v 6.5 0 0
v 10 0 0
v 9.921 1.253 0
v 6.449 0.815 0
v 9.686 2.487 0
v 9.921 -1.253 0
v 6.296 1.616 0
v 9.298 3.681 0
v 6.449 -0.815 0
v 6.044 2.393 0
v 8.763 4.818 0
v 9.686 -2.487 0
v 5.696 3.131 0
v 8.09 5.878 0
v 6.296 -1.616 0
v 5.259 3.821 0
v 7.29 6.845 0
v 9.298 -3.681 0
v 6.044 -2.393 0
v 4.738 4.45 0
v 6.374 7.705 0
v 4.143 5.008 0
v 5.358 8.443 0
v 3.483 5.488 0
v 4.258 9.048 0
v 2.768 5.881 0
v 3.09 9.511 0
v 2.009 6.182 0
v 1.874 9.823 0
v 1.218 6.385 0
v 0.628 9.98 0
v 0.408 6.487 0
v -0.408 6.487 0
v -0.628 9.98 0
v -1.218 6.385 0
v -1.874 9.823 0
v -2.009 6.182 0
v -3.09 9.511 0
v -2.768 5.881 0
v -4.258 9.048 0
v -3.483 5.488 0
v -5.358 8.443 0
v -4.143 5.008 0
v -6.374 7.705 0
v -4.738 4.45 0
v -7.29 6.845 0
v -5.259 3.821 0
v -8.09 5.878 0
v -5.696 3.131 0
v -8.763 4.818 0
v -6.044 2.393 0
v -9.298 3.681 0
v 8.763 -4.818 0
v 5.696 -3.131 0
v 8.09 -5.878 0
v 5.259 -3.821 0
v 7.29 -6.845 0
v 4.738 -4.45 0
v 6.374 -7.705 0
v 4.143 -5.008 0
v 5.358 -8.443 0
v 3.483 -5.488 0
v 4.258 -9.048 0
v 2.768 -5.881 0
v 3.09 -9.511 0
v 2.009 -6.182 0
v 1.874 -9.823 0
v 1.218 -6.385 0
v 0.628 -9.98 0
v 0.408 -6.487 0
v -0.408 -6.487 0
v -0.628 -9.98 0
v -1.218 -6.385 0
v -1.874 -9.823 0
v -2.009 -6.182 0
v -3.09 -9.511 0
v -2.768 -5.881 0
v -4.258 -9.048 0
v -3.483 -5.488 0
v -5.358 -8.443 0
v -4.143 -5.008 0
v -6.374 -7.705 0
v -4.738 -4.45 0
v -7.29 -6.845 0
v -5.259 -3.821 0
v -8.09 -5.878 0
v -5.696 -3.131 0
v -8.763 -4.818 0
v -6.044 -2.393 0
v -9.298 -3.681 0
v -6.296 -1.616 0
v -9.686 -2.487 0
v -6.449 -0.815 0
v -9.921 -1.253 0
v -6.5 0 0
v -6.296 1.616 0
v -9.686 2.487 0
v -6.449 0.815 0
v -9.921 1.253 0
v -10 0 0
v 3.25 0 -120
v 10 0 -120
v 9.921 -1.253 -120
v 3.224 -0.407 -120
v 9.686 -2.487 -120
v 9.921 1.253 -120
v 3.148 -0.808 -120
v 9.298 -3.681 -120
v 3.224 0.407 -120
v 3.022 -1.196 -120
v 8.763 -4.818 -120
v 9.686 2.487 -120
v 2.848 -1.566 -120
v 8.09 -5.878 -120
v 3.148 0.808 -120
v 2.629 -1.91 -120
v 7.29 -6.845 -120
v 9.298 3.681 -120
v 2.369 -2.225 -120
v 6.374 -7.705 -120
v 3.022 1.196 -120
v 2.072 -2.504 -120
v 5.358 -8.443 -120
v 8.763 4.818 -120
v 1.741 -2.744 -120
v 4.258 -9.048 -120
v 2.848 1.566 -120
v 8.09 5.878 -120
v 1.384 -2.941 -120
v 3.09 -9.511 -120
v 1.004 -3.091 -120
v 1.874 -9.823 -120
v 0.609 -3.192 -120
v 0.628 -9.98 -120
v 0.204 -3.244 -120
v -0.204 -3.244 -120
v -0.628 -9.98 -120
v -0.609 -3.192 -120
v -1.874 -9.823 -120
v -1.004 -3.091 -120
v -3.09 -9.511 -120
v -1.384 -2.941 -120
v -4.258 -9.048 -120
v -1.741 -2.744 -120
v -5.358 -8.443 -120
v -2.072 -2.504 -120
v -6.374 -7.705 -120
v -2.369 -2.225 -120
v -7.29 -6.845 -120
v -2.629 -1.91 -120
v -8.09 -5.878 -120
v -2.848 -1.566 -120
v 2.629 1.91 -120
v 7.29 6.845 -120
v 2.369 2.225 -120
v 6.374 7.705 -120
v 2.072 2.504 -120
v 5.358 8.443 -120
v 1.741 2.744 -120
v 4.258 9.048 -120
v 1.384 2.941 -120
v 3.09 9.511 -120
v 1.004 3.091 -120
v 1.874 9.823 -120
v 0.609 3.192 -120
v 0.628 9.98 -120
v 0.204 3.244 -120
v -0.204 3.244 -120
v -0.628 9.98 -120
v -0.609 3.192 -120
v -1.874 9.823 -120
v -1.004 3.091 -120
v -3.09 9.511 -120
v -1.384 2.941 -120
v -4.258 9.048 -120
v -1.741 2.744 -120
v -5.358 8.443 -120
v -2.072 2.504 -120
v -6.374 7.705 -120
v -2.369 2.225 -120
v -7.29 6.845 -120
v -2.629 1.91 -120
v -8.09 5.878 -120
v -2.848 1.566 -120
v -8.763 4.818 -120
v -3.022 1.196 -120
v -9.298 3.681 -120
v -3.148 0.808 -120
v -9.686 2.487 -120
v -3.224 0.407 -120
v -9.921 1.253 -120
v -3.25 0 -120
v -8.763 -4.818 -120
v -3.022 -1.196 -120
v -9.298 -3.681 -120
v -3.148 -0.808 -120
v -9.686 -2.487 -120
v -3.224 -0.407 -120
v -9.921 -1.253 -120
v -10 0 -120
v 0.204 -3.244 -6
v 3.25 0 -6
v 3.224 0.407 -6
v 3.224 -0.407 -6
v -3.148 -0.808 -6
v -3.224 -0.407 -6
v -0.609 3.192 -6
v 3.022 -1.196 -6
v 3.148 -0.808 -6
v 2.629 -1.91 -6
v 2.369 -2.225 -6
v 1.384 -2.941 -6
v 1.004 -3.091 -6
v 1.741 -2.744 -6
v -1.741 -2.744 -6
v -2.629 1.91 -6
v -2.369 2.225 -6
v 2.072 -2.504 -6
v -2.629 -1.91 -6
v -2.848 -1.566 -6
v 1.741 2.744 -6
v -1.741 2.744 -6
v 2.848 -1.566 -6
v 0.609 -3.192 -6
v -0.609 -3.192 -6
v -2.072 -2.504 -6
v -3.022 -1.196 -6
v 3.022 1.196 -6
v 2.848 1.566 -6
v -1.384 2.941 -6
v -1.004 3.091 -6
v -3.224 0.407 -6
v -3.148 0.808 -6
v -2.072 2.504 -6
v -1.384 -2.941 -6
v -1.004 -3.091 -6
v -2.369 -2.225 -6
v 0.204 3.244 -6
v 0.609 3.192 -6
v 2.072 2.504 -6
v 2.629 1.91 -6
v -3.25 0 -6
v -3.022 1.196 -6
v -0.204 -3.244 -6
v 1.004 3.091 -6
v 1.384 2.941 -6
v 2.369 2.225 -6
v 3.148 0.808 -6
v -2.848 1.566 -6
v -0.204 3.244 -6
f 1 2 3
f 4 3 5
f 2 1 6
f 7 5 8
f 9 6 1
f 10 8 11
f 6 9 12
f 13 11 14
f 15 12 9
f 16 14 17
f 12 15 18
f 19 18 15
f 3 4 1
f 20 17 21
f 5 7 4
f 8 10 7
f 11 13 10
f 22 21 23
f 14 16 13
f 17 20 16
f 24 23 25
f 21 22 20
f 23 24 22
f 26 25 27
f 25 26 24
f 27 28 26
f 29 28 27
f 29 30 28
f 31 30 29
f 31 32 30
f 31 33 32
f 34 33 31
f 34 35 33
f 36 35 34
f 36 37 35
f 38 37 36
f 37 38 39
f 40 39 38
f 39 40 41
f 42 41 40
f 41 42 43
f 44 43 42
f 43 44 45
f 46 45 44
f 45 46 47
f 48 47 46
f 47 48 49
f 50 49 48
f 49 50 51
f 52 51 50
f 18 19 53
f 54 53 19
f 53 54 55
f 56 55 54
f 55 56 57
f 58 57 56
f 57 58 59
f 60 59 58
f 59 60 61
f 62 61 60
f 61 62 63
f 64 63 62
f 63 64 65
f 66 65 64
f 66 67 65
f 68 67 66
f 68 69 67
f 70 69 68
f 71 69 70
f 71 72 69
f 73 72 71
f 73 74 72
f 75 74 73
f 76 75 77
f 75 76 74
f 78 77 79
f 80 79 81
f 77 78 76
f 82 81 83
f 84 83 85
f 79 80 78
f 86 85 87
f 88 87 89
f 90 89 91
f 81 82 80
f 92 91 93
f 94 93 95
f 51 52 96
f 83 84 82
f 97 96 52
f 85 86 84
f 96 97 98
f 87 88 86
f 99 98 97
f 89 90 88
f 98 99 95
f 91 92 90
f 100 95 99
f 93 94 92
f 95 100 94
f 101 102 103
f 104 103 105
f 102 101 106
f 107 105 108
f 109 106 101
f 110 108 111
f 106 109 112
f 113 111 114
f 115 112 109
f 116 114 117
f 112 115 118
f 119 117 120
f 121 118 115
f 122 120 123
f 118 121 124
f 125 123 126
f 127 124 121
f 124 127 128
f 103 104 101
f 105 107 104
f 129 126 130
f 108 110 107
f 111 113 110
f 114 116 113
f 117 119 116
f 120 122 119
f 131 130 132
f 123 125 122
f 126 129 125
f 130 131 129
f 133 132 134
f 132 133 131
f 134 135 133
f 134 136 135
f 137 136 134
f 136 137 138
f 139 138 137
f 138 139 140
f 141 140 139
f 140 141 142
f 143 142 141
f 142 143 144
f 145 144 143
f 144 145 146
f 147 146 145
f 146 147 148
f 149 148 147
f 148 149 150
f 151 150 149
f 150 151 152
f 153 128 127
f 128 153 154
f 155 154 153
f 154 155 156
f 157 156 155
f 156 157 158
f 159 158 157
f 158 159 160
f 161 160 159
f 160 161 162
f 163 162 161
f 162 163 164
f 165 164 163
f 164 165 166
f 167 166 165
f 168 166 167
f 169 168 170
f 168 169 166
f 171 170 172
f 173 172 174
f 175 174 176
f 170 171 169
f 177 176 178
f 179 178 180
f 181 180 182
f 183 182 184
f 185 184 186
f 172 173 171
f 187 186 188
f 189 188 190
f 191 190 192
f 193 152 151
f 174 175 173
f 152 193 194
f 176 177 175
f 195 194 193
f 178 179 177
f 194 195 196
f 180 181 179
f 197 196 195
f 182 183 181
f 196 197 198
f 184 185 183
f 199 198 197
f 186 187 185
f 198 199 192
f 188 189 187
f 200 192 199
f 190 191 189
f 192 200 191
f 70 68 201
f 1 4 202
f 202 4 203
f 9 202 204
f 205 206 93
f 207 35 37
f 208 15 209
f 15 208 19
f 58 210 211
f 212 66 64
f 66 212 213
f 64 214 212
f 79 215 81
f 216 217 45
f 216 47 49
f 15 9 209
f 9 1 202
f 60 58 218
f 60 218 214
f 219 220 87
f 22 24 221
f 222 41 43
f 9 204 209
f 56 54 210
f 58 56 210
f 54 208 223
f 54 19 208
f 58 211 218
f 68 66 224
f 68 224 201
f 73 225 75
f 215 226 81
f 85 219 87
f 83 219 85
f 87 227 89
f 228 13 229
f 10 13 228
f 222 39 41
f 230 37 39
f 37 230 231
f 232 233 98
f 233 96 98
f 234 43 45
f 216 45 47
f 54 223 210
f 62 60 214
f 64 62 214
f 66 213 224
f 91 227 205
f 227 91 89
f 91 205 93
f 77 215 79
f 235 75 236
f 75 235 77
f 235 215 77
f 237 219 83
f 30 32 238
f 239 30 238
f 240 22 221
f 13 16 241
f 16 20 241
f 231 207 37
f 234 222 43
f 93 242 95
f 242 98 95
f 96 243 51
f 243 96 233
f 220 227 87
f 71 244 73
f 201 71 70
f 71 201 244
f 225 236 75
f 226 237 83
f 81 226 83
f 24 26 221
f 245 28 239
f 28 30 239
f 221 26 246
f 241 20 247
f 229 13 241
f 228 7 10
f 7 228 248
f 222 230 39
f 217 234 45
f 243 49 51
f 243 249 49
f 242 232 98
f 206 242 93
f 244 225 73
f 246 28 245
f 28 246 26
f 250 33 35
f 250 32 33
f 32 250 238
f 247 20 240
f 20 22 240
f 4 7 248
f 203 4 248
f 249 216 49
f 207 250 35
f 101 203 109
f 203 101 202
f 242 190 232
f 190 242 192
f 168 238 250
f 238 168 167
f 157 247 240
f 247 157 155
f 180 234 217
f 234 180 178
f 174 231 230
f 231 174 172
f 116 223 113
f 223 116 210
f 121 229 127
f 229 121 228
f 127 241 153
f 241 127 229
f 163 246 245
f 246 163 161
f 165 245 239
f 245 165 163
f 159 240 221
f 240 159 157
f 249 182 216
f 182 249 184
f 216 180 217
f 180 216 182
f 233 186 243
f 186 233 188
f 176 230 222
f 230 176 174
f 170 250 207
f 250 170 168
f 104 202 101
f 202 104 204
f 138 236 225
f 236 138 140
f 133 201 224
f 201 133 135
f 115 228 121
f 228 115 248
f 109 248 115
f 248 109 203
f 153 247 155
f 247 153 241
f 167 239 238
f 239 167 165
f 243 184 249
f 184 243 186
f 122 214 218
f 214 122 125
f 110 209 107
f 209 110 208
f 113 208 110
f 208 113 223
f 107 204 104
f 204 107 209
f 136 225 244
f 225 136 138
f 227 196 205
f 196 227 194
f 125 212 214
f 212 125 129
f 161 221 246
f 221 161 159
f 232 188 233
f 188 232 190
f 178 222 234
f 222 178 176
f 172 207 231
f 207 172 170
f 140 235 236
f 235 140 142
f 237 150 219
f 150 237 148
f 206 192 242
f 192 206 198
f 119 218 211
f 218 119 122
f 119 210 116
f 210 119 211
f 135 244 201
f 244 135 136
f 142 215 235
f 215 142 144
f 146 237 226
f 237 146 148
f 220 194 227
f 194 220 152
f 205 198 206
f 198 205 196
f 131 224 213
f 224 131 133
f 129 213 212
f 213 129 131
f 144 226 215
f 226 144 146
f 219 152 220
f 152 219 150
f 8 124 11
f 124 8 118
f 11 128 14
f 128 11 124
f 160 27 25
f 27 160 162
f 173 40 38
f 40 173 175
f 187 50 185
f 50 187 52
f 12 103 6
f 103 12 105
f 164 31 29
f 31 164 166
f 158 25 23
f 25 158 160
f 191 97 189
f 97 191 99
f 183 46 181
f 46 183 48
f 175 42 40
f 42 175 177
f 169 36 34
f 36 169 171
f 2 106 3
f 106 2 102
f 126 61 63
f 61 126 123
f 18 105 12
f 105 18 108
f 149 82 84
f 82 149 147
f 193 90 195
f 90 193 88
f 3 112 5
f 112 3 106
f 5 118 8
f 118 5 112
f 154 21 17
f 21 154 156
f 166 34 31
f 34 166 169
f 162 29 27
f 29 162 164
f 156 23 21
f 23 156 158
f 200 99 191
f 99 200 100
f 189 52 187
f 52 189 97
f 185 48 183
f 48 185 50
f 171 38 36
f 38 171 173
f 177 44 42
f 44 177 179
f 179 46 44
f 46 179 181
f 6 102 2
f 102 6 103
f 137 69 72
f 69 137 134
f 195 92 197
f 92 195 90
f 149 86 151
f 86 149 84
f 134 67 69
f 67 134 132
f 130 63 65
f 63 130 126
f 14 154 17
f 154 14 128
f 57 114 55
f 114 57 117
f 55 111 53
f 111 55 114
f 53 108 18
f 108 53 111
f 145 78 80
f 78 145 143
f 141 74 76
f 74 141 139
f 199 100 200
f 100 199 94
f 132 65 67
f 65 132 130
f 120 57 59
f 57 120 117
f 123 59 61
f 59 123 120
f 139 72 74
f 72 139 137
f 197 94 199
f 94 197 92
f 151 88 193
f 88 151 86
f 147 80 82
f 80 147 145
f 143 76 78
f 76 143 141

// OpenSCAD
$fn = 50;


difference() {
	union() {
		translate(v = [0, 0, -120.0000000000]) {
			cylinder(h = 120, r = 10.0000000000);
		}
		cylinder(h = 0, r = 13.0000000000);
	}
	union() {
		translate(v = [0, 0, 0]) {
			rotate(a = [0, 0, 0]) {
				difference() {
					union() {
						#translate(v = [0, 0, -120.0000000000]) {
							cylinder(h = 120, r = 2.2500000000);
						}
						#translate(v = [0, 0, -6]) {
							cylinder(h = 6, r1 = 3.2500000000, r2 = 6.5000000000);
						}
						#translate(v = [0, 0, -120.0000000000]) {
							cylinder(h = 120, r = 3.2500000000);
						}
						#translate(v = [0, 0, -120.0000000000]) {
							cylinder(h = 120, r = 2.2500000000);
						}
					}
					union();
				}
			}
		}
	}
}
